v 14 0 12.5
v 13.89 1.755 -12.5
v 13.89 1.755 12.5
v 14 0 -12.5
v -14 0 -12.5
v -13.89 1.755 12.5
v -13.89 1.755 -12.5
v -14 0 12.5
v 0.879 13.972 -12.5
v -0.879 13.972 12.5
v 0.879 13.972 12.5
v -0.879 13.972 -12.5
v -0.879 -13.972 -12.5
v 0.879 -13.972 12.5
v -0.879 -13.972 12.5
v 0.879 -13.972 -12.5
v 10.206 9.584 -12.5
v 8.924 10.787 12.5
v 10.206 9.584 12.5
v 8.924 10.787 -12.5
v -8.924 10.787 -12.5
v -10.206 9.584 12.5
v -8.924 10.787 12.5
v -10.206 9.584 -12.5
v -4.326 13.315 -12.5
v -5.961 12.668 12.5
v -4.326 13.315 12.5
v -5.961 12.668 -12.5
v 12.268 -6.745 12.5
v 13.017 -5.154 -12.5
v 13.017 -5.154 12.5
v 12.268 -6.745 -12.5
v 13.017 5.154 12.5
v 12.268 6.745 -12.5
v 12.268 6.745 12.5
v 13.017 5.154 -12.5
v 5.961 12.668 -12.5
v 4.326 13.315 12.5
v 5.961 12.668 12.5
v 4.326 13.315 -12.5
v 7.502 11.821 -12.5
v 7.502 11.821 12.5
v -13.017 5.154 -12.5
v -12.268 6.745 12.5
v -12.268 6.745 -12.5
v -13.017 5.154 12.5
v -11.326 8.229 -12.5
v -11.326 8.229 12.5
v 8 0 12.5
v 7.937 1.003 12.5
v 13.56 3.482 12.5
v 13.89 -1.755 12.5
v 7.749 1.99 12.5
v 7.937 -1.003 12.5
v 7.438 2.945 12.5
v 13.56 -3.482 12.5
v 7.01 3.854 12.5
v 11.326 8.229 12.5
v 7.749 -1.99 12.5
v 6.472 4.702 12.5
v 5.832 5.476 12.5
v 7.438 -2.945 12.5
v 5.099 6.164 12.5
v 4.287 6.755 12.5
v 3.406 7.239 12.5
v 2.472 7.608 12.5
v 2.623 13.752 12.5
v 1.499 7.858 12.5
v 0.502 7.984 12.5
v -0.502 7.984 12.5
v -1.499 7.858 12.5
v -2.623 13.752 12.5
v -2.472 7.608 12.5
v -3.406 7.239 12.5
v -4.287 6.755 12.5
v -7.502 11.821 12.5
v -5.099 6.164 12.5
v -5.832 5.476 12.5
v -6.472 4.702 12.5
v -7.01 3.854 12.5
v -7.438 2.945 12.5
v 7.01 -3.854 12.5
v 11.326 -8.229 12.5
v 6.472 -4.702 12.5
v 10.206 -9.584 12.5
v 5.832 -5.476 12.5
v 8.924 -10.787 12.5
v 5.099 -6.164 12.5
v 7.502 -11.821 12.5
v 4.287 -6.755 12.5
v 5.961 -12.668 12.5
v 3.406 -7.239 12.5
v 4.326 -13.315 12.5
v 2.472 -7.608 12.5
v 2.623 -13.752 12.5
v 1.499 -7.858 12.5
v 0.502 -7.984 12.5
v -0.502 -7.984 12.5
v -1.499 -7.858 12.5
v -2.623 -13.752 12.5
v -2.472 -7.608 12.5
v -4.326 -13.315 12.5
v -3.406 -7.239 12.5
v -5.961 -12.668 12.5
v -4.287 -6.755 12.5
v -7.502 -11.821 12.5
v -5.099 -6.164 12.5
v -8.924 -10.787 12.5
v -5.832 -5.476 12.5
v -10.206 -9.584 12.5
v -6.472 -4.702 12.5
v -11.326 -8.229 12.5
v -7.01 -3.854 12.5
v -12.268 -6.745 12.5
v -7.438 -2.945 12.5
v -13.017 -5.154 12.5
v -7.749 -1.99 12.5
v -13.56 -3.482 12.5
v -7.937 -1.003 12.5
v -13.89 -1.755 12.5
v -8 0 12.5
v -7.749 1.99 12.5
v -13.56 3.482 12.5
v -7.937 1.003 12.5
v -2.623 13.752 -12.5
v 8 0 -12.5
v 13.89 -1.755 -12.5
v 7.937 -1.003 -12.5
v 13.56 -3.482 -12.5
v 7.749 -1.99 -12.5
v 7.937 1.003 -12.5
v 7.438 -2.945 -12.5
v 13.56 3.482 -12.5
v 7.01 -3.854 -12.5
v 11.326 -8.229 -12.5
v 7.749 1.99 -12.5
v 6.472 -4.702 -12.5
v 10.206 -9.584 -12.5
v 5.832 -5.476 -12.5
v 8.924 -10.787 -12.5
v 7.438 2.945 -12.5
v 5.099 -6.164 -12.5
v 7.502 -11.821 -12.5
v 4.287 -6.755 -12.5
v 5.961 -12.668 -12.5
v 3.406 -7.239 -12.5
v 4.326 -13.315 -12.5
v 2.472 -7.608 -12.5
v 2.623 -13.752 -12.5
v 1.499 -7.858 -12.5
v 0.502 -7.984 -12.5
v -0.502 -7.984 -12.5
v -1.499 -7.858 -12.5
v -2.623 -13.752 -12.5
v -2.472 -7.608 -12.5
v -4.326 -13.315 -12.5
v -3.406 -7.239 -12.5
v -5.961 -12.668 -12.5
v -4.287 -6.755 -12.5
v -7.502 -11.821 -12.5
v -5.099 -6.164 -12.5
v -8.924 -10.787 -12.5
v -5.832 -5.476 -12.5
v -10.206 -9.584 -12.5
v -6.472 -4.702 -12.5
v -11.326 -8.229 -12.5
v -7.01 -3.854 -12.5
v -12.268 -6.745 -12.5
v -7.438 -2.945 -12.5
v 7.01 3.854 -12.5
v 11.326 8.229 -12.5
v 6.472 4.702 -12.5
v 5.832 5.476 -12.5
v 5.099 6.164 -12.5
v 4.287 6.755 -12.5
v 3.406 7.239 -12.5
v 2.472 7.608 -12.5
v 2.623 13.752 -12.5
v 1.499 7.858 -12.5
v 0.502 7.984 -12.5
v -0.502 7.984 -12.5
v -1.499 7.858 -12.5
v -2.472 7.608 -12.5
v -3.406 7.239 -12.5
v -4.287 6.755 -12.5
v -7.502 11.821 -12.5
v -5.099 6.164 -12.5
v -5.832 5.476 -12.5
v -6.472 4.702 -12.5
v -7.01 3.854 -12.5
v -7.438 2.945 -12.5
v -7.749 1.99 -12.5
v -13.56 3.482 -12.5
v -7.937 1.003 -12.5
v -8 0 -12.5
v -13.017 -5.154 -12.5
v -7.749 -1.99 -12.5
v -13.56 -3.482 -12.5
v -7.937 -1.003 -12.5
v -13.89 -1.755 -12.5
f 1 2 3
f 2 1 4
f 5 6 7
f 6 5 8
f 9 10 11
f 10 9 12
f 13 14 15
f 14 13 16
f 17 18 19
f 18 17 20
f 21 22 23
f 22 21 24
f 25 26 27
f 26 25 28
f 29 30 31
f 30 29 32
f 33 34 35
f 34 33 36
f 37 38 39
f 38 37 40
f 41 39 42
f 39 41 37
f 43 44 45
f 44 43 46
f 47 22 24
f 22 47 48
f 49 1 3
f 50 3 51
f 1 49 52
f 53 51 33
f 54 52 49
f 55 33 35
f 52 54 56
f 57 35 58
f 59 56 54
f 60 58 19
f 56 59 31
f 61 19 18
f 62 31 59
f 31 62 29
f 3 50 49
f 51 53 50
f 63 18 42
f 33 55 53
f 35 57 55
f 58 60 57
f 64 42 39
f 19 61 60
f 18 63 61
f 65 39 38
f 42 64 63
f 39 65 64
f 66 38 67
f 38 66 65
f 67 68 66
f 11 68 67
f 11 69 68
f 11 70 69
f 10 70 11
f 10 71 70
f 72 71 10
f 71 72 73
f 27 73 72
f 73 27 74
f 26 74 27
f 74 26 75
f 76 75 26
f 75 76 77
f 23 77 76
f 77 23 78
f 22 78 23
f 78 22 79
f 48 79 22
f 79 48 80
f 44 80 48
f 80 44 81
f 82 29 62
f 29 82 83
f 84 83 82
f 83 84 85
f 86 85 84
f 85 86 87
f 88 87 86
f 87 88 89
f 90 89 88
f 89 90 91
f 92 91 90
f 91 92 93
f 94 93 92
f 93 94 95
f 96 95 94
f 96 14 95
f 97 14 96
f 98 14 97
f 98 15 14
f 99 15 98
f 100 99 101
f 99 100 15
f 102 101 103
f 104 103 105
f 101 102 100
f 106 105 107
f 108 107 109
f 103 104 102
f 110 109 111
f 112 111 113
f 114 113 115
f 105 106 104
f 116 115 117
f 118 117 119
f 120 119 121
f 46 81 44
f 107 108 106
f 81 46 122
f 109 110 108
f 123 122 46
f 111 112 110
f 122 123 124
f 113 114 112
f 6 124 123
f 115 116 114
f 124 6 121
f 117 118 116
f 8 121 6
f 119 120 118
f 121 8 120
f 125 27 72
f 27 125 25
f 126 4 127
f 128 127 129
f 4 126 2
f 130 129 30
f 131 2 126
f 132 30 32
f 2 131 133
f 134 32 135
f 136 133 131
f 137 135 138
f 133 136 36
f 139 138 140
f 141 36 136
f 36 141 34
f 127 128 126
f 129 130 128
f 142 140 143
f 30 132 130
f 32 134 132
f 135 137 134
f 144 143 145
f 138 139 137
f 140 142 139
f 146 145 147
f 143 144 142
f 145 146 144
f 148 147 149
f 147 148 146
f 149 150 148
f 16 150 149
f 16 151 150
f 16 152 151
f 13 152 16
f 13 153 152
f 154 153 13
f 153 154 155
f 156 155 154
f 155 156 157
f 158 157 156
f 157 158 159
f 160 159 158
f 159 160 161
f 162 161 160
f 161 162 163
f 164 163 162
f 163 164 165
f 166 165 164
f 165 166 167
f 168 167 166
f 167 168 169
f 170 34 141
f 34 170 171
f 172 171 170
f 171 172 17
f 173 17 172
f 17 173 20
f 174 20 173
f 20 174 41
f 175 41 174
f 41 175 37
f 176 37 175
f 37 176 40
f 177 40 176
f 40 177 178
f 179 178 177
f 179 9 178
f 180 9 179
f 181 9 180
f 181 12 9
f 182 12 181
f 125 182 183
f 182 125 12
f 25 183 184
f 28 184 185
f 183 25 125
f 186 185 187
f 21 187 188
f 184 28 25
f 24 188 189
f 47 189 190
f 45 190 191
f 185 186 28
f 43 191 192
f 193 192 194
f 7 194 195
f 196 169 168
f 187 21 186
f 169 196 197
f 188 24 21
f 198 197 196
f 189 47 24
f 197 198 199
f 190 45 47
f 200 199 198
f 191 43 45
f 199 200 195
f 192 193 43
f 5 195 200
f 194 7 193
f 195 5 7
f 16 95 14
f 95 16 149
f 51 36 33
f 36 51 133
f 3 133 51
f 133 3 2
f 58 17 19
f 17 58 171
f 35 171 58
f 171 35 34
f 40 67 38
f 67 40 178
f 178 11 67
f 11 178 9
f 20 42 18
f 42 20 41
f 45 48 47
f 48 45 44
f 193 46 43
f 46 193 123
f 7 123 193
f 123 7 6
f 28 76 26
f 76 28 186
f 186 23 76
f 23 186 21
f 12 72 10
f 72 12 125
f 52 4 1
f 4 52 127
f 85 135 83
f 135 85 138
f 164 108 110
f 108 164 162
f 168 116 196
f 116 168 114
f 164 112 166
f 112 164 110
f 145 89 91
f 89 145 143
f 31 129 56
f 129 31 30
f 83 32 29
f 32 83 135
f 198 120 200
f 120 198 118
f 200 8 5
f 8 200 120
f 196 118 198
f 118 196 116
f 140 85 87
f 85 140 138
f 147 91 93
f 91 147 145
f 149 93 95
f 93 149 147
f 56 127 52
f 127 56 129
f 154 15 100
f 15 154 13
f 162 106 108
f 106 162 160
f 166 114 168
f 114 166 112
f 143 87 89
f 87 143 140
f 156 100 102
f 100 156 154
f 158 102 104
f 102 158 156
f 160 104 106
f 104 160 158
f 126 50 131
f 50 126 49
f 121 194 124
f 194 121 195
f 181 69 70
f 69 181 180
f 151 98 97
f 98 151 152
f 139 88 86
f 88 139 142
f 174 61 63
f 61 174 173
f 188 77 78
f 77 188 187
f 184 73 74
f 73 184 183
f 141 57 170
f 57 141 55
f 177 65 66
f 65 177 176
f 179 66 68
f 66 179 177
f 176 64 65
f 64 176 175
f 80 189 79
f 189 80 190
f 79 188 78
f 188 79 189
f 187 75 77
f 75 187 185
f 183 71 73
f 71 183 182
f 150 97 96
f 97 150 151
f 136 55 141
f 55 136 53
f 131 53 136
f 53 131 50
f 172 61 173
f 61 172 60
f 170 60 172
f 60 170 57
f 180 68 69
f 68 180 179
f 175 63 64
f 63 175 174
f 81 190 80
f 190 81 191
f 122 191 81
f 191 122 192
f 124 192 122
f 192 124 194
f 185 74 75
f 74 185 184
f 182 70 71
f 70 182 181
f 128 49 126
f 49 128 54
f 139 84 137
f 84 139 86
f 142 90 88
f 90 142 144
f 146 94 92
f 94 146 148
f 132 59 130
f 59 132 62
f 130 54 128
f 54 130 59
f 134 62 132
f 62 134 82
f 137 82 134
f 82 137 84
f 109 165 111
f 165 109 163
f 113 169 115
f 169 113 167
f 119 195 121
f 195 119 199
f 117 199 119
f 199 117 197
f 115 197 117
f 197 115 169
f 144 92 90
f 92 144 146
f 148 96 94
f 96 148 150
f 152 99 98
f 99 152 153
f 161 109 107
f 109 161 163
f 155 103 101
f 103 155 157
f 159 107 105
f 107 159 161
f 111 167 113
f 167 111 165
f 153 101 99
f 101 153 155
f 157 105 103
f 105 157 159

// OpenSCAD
$fn = 50;


difference() {
	union() {
		translate(v = [0, 0, -12.5000000000]) {
			cylinder(h = 25, r = 14.0000000000);
		}
	}
	union() {
		translate(v = [0, 0, -100.0000000000]) {
			cylinder(h = 200, r = 8);
		}
	}
}
